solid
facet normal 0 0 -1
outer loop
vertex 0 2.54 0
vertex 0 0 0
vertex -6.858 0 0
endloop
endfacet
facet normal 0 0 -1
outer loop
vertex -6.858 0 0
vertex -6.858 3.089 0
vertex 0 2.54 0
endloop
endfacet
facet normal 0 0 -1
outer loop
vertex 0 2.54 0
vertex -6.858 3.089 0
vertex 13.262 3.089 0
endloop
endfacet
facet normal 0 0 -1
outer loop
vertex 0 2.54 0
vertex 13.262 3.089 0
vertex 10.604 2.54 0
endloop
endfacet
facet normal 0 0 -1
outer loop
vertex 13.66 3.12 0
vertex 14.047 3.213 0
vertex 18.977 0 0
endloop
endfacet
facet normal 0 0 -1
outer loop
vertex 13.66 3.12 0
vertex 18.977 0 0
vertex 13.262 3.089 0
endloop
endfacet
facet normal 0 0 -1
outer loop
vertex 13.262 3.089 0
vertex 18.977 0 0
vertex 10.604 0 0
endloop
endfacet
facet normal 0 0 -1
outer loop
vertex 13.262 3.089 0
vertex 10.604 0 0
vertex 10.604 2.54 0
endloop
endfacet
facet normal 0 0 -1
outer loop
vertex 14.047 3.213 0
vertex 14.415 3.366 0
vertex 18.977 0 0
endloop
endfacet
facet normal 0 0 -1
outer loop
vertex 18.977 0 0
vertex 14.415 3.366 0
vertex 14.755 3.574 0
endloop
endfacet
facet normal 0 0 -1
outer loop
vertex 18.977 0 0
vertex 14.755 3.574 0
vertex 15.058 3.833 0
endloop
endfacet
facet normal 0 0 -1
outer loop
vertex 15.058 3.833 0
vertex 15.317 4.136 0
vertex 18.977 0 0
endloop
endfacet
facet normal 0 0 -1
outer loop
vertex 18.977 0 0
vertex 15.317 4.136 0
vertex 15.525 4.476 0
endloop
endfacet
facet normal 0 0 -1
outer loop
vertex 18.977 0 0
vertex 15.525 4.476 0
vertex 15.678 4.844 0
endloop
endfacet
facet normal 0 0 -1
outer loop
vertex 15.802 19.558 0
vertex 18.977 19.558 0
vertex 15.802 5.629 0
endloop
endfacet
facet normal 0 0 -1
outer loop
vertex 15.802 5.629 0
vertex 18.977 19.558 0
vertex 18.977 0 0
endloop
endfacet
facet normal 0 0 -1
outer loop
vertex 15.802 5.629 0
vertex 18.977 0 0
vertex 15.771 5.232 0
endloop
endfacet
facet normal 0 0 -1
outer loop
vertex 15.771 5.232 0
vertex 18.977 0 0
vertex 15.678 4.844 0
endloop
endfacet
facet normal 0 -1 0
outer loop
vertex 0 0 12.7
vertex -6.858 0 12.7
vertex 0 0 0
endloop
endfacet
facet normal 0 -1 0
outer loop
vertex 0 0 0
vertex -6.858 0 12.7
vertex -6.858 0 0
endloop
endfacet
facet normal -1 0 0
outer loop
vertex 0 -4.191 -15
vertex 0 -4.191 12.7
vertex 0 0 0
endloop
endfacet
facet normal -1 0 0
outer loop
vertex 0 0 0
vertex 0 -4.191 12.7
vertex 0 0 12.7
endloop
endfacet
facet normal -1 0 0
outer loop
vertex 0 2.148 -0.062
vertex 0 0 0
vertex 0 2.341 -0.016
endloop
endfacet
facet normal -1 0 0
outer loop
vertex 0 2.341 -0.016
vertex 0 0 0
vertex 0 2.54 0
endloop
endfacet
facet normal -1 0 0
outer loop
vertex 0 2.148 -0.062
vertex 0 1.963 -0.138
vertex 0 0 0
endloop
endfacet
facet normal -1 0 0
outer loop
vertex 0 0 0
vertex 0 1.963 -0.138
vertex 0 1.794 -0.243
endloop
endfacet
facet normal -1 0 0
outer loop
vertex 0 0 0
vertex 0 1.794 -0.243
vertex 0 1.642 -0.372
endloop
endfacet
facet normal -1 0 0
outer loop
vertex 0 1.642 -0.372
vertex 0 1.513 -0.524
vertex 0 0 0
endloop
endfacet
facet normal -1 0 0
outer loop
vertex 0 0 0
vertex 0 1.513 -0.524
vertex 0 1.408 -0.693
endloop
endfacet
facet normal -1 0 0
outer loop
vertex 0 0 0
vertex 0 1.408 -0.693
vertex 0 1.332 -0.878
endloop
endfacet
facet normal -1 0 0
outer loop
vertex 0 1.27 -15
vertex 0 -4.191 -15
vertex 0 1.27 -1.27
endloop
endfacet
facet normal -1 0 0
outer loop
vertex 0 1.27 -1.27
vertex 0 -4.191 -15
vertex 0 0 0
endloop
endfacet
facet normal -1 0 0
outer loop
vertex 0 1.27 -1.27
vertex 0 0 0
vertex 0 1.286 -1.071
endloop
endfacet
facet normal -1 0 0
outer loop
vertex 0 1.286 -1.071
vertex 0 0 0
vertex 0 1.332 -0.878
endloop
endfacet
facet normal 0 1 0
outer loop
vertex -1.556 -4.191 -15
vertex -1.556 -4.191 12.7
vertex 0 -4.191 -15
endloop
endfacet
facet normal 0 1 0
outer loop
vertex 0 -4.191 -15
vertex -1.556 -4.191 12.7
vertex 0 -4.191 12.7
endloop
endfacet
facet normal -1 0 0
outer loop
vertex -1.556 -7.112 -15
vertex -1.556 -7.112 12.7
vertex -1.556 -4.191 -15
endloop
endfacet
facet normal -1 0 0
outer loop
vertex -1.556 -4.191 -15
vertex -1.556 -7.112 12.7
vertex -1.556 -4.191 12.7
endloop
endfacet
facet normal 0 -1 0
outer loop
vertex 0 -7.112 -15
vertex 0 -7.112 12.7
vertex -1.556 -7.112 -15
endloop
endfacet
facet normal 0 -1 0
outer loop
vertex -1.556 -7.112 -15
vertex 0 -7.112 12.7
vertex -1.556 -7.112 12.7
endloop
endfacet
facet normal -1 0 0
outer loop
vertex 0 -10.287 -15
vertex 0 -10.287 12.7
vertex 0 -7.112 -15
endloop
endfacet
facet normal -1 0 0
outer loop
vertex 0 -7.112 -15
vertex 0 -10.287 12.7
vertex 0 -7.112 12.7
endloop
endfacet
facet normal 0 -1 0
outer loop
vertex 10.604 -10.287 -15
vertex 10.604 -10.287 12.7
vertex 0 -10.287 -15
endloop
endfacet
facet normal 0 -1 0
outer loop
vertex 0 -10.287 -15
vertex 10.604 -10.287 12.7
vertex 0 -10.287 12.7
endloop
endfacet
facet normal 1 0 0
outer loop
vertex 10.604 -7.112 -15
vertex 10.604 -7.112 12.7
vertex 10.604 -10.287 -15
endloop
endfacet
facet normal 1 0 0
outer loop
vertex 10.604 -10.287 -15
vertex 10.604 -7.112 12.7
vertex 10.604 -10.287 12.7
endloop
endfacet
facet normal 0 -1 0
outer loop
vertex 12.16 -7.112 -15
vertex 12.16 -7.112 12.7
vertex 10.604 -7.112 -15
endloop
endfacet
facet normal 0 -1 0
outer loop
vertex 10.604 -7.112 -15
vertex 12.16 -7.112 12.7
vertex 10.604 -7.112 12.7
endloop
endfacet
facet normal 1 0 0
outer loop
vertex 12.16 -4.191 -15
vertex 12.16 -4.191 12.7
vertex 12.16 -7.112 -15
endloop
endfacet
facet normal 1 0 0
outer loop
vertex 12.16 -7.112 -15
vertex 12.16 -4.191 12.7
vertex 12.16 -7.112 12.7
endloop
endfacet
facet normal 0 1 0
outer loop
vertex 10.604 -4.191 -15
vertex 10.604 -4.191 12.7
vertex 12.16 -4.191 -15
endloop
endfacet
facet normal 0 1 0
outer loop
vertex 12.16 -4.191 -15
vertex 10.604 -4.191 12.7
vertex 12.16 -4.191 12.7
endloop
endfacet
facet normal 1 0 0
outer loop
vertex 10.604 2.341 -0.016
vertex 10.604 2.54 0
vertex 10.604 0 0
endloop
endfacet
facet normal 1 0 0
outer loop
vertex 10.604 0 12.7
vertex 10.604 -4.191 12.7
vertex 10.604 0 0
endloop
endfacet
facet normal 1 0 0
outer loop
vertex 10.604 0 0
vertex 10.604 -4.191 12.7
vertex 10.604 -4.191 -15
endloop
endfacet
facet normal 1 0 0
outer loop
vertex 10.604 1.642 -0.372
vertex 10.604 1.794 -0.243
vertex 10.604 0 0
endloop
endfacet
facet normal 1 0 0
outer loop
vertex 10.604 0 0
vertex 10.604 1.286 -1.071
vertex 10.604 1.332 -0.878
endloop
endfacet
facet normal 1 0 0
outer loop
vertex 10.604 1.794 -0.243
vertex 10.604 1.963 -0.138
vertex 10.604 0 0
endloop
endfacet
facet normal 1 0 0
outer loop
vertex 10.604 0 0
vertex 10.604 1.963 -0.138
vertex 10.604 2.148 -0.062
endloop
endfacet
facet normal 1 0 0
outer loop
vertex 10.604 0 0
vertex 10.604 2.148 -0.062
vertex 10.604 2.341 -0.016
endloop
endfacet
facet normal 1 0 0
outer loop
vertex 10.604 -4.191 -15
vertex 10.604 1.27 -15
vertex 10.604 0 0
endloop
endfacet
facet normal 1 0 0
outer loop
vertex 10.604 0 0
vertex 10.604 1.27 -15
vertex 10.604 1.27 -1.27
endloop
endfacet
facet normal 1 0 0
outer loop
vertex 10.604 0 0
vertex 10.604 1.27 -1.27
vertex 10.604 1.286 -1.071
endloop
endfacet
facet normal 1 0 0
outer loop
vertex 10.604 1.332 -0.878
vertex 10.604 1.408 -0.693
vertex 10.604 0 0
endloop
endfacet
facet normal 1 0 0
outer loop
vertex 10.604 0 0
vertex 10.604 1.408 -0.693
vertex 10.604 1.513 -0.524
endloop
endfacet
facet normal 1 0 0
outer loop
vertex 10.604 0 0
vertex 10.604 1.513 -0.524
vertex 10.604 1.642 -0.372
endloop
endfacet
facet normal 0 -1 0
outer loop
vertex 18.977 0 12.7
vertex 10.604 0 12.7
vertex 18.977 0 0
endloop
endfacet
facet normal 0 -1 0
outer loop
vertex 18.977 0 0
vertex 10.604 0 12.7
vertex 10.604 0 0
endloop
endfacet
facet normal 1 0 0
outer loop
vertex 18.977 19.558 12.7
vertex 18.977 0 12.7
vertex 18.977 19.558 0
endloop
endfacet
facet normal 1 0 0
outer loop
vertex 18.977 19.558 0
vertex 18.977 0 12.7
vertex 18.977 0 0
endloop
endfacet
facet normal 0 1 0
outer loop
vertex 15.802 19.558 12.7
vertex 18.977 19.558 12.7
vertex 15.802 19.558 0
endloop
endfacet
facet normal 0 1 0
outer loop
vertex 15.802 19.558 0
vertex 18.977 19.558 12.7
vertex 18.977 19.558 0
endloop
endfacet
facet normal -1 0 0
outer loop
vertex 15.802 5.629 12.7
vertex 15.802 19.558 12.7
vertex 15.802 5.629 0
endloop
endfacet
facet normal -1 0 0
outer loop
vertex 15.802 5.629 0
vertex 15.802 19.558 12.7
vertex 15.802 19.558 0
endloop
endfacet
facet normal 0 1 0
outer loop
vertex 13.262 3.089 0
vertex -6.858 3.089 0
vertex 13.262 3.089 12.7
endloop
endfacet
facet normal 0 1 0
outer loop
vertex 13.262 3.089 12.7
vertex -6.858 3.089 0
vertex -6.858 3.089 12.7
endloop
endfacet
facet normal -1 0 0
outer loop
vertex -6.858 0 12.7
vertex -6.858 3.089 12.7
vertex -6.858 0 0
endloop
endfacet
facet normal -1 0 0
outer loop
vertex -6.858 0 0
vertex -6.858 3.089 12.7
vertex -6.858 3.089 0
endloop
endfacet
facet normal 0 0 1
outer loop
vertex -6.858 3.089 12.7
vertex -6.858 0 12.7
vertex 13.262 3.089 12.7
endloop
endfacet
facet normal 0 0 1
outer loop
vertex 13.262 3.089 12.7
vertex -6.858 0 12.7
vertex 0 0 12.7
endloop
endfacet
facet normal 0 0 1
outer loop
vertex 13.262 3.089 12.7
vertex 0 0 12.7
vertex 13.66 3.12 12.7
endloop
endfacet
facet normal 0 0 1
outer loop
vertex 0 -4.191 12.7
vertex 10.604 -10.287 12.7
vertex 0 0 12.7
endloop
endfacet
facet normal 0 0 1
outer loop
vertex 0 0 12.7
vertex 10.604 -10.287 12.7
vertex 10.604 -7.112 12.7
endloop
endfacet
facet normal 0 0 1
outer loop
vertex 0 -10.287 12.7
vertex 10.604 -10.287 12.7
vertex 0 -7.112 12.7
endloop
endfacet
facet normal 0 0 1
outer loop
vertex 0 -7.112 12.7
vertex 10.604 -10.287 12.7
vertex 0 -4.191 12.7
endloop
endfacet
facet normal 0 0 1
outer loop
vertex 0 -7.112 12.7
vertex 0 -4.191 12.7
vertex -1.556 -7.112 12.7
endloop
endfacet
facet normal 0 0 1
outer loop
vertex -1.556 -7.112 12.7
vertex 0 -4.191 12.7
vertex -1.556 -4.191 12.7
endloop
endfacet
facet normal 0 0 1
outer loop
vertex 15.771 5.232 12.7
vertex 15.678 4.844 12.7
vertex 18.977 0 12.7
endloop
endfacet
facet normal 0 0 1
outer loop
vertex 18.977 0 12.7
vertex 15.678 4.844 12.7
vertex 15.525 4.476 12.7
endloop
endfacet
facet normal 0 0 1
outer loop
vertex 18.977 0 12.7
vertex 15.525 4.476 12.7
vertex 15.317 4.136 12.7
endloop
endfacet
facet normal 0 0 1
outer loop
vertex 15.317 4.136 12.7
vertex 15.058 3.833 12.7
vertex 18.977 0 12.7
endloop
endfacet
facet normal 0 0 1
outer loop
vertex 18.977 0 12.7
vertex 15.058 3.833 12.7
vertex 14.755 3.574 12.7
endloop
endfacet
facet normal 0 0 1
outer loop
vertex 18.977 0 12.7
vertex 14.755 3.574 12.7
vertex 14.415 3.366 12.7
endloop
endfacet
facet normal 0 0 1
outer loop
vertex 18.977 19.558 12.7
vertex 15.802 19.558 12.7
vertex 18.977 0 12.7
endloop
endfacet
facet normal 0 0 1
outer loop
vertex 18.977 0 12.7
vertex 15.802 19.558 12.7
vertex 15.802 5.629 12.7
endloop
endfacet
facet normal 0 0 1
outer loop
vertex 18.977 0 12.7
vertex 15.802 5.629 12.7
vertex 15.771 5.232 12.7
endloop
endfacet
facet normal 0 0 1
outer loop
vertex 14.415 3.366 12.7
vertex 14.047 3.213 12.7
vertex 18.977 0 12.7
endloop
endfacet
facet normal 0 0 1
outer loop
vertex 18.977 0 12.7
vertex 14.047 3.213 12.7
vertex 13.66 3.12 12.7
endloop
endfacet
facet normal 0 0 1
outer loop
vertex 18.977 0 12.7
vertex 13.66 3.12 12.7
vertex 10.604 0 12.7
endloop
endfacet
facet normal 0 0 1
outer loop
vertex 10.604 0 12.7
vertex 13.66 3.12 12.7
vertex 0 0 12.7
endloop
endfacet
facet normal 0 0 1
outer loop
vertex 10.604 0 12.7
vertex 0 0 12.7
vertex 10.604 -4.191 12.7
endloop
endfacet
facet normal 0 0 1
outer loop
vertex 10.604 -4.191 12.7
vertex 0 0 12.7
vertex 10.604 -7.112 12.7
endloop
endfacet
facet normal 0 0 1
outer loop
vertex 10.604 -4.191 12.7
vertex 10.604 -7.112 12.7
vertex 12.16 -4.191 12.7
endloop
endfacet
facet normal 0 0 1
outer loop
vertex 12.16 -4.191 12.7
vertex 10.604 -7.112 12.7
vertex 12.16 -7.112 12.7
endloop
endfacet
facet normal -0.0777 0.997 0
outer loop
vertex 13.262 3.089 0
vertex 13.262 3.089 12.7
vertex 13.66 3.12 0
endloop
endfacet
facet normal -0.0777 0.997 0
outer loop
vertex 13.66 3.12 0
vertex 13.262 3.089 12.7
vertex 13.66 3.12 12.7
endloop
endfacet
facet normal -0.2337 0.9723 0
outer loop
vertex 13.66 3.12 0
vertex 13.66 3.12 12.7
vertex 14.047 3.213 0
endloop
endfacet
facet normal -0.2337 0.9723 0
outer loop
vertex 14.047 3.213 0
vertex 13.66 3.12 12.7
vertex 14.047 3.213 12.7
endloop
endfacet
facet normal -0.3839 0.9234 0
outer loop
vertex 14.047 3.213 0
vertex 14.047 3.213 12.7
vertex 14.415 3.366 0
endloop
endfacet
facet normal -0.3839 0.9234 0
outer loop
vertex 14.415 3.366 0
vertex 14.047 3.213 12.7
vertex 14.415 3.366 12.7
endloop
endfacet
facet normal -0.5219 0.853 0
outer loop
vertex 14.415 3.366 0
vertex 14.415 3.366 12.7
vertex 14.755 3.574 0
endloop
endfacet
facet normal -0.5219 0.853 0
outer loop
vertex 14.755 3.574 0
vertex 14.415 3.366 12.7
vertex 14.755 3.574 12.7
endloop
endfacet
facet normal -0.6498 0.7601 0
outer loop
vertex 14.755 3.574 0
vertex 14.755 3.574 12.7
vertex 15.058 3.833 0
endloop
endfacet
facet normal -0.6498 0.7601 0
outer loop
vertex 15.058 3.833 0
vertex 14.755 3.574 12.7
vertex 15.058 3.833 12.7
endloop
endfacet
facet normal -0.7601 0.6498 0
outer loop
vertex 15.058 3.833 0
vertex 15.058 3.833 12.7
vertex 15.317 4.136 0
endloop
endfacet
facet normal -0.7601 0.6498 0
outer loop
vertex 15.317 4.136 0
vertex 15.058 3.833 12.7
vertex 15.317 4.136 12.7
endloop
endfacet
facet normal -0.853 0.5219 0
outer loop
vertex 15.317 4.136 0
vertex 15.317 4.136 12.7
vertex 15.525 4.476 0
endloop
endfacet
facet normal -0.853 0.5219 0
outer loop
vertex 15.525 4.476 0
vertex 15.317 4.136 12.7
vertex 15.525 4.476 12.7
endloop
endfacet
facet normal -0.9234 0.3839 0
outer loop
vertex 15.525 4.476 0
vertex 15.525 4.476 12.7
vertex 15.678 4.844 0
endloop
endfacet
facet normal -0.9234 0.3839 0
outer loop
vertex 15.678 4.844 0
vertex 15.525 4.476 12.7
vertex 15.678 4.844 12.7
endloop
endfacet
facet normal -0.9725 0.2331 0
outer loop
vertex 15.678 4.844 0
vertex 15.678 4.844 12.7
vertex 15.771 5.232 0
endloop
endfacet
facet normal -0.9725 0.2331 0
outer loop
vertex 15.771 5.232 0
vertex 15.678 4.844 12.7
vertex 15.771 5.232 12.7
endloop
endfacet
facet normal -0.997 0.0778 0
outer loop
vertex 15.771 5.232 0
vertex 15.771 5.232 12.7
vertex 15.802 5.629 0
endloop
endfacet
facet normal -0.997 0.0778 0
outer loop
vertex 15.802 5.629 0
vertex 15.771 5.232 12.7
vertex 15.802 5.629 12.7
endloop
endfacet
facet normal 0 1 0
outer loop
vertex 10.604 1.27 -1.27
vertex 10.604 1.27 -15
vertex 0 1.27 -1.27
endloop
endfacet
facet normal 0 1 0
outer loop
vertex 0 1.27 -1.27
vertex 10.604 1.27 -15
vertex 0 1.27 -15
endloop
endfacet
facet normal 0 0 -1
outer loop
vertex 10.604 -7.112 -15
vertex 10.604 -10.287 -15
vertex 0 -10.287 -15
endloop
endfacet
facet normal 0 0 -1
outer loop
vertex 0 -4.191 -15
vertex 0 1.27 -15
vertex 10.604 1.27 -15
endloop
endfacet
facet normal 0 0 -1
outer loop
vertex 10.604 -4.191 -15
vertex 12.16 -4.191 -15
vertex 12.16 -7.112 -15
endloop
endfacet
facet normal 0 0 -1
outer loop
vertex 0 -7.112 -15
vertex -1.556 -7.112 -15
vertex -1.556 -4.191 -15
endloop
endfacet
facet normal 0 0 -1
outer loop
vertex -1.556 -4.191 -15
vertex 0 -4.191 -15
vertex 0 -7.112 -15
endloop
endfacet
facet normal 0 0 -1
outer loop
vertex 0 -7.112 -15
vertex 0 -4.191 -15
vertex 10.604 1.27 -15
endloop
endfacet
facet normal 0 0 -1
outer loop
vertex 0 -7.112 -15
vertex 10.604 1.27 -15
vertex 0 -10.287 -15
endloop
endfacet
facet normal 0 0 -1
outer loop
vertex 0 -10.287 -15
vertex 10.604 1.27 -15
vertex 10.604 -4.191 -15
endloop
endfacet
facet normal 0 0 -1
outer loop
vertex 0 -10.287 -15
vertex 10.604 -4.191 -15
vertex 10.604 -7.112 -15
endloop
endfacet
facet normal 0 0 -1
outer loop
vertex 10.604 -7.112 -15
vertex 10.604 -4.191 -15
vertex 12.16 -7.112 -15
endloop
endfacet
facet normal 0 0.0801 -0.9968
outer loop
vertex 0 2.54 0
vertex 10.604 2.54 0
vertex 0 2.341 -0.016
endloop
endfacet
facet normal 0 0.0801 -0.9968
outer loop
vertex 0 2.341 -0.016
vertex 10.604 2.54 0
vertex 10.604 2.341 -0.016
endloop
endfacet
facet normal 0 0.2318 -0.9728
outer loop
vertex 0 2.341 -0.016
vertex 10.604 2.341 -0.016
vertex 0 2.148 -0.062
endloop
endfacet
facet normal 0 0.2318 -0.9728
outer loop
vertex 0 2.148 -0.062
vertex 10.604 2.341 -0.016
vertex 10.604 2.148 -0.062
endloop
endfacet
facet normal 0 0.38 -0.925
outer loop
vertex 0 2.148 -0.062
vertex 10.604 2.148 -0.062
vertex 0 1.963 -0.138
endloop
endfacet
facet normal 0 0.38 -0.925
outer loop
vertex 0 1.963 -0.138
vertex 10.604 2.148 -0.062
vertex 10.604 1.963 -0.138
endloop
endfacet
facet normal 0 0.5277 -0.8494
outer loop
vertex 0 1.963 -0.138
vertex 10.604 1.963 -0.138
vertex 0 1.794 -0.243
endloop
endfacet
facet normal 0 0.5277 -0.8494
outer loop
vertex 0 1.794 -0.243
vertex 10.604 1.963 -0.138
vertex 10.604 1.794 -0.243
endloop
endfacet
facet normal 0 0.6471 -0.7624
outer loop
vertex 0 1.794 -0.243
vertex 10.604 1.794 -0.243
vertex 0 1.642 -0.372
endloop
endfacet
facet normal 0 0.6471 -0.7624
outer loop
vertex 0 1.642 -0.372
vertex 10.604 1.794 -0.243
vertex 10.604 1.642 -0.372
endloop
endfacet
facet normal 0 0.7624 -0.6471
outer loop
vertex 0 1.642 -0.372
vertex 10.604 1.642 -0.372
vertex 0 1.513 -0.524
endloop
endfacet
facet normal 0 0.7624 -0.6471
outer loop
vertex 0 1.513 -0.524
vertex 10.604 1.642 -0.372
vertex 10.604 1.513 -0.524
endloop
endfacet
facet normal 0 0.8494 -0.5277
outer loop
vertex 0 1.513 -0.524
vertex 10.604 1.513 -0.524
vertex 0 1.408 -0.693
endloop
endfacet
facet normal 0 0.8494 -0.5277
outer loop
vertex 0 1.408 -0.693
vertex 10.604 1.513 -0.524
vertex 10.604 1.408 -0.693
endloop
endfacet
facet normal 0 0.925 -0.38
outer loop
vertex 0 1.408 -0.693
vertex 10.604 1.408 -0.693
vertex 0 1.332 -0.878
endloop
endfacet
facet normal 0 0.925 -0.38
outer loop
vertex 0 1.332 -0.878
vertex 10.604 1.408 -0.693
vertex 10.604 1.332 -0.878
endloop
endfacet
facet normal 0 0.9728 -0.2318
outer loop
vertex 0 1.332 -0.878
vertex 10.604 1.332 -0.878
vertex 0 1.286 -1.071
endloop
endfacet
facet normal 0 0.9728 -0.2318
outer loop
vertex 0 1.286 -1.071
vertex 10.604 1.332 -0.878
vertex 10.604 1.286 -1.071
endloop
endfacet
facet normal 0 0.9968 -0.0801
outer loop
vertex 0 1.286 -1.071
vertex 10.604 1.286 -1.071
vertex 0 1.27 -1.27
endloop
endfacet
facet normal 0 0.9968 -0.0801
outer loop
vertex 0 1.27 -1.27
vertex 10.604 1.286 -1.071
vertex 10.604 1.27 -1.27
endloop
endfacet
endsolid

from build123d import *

# Parameters (mm, degrees)
BOSS_EXTRUDE1_DEPTH = 12.7
FILLET1_R           = 2.54
BOSS_EXTRUDE2_DEPTH = 15
FILLET2_R           = 1.27


with BuildPart() as part:
    # Sketch1 → Boss-Extrude1 (new body)
    with BuildSketch(Plane.XY):
        Polygon((0, 0), (0, -4.191), (-1.55575, -4.191), (-1.55575, -7.112), (0, -7.112), (0, -10.287), (10.6045, -10.287), (10.6045, -7.112), (12.16025, -7.112), (12.16025, -4.191), (10.6045, -4.191), (10.6045, 0), (18.97725, 0), (18.97725, 19.558), (15.80225, 19.558), (15.80225, 3.089), (-6.858, 3.089), (-6.858, 0), align=None)
    extrude(amount=BOSS_EXTRUDE1_DEPTH)

    # Fillet1
    fillet1_edges = [part.edges().sort_by_distance(p)[0] for p in [
        (15.80225, 3.089, 6.35),
    ]]
    fillet(fillet1_edges, radius=FILLET1_R)

    # Sketch2 → Boss-Extrude2 (add)
    with BuildSketch(Plane.XY):
        Polygon((0, 0), (0, 1.27), (10.6045, 1.27), (10.6045, 0), (10.6045, -4.191), (12.16025, -4.191), (12.16025, -7.112), (10.6045, -7.112), (10.6045, -10.287), (0, -10.287), (0, -7.112), (-1.55575, -7.112), (-1.55575, -4.191), (0, -4.191), align=None)
    extrude(amount=-BOSS_EXTRUDE2_DEPTH)

    # Fillet2
    fillet2_edges = [part.edges().sort_by_distance(p)[0] for p in [
        (5.30225, 1.27, 0),
    ]]
    fillet(fillet2_edges, radius=FILLET2_R)


solid = part.part
